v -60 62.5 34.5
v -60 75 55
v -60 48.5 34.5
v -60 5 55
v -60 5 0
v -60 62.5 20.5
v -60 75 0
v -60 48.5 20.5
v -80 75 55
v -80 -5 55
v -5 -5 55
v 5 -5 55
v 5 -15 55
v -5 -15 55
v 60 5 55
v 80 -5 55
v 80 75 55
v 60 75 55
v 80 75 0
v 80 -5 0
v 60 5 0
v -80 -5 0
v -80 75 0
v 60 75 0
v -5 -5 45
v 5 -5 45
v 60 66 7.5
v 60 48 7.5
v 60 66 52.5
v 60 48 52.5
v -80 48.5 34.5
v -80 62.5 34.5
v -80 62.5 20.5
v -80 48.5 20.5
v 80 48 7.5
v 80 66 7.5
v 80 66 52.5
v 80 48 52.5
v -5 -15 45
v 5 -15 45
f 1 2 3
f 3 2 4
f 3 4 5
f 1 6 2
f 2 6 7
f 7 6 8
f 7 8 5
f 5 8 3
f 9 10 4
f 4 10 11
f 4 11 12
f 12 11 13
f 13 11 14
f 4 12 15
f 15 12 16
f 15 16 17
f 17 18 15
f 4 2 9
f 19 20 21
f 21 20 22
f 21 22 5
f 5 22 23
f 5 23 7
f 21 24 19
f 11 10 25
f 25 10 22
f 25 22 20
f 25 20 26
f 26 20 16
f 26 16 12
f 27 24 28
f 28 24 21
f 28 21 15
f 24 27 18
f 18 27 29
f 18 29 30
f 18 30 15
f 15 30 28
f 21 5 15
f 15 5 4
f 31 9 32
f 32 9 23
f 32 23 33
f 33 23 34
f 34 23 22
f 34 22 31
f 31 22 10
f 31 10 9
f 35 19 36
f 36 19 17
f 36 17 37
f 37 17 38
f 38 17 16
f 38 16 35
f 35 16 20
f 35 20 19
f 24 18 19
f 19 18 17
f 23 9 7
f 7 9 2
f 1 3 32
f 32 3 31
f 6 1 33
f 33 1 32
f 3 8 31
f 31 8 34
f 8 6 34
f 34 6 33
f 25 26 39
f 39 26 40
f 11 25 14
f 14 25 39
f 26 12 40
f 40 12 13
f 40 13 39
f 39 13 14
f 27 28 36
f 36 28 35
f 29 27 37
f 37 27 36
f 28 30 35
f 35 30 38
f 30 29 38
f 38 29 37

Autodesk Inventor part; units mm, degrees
ref_plane "YZ Plane" through (0, 0, 0) normal (1, 0, 0) x (0, 1, 0)
ref_plane "XZ Plane" through (0, 0, 0) normal (0, 1, 0) x (-1, 0, 0)
ref_plane "XY Plane" through (0, 0, 0) normal (0, 0, 1) x (1, 0, 0)
sketch "Boceto1" plane through (0, 0, 0) normal (0, 0, 1) x (1, 0, 0)
  line L0 (-80, 5) -> (80, 5)
  line L1 (80, 5) -> (80, -5)
  line L2 (80, -5) -> (-80, -5)
  line L3 (-80, -5) -> (-80, 5)
  line L4 (-80, 5) -> (80, -5) construction
  line L5 (80, 5) -> (-80, -5) construction
  point P0 (0, 0)
  dimension "d0" = 160
  dimension "d1" = 10
extrude "Extrusión1" add sketch "Boceto1" along normal blind 55
sketch "Boceto2" plane through (-80, 5, 0) normal (0, 1, 0) x (1, 0, 0)
  line L0 (0, 0) -> (0, -55) projected
  line L1 (0, -55) -> (160, -55) projected
  line L2 (0, 0) -> (20, 0)
  line L3 (20, 0) -> (20, -55)
  line L4 (20, -55) -> (0, -55)
  line L5 (0, -55) -> (0, 0)
  line L6 (160, 0) -> (160, -55) projected
  line L7 (160, 0) -> (140, 0)
  line L8 (140, 0) -> (140, -55)
  line L9 (140, -55) -> (160, -55)
  line L10 (160, -55) -> (160, 0)
  point P0 (80, 0)
  dimension "d4" = 20
  dimension "d5" = 20
extrude "Extrusión2" add sketch "Boceto2" along normal blind 70
sketch "Boceto3" plane through (-80, -5, 0) normal (-1, 0, 0) x (0, 0, 1)
  line L0 (0, 80) -> (55, 80) projected
  line L1 (20.5, 67.5) -> (34.5, 67.5)
  line L2 (34.5, 67.5) -> (34.5, 53.5)
  line L3 (34.5, 53.5) -> (20.5, 53.5)
  line L4 (20.5, 53.5) -> (20.5, 67.5)
  line L5 (20.5, 67.5) -> (34.5, 53.5) construction
  line L6 (34.5, 67.5) -> (20.5, 53.5) construction
  line L7 (0, 0) -> (0, 80) projected
  point P0 (0, 5)
  point P1 (27.5, 60.5)
  dimension "d10" = 14
  dimension "d11" = 14
  dimension "d12" = 20.5
  dimension "d13" = 12.5
extrude "Extrusión3" cut sketch "Boceto3" against normal blind 70
sketch "Boceto4" plane through (-80, -5, 0) normal (0, -1, 0) x (1, 0, 0)
  line L0 (140, 55) -> (20, 55) projected
  line L1 (75, 45) -> (85, 45)
  line L2 (85, 45) -> (85, 55)
  line L3 (85, 55) -> (75, 55)
  line L4 (75, 55) -> (75, 45)
  line L5 (75, 45) -> (85, 55) construction
  line L6 (85, 45) -> (75, 55) construction
  point P0 (80, 0)
  dimension "d17" = 10
extrude "Extrusión4" add sketch "Boceto4" along normal blind 10
sketch "Boceto5" plane through (80, -5, 55) normal (1, 0, 0) x (0, 0, -1)
  line L0 (2.5, 71) -> (47.5, 71)
  line L1 (47.5, 71) -> (47.5, 53)
  line L2 (47.5, 53) -> (2.5, 53)
  line L3 (2.5, 53) -> (2.5, 71)
  line L4 (2.5, 71) -> (47.5, 53) construction
  line L5 (47.5, 71) -> (2.5, 53) construction
  line L6 (0, 80) -> (55, 80) projected
  line L7 (55, 0) -> (55, 80) projected
  point P0 (55, 5)
  point P1 (25, 62)
  dimension "d20" = 45
  dimension "d21" = 18
  dimension "d22" = 9
  dimension "d23" = 7.5
extrude "Extrusión5" cut sketch "Boceto5" against normal blind 30
properties part number "camera_support"
